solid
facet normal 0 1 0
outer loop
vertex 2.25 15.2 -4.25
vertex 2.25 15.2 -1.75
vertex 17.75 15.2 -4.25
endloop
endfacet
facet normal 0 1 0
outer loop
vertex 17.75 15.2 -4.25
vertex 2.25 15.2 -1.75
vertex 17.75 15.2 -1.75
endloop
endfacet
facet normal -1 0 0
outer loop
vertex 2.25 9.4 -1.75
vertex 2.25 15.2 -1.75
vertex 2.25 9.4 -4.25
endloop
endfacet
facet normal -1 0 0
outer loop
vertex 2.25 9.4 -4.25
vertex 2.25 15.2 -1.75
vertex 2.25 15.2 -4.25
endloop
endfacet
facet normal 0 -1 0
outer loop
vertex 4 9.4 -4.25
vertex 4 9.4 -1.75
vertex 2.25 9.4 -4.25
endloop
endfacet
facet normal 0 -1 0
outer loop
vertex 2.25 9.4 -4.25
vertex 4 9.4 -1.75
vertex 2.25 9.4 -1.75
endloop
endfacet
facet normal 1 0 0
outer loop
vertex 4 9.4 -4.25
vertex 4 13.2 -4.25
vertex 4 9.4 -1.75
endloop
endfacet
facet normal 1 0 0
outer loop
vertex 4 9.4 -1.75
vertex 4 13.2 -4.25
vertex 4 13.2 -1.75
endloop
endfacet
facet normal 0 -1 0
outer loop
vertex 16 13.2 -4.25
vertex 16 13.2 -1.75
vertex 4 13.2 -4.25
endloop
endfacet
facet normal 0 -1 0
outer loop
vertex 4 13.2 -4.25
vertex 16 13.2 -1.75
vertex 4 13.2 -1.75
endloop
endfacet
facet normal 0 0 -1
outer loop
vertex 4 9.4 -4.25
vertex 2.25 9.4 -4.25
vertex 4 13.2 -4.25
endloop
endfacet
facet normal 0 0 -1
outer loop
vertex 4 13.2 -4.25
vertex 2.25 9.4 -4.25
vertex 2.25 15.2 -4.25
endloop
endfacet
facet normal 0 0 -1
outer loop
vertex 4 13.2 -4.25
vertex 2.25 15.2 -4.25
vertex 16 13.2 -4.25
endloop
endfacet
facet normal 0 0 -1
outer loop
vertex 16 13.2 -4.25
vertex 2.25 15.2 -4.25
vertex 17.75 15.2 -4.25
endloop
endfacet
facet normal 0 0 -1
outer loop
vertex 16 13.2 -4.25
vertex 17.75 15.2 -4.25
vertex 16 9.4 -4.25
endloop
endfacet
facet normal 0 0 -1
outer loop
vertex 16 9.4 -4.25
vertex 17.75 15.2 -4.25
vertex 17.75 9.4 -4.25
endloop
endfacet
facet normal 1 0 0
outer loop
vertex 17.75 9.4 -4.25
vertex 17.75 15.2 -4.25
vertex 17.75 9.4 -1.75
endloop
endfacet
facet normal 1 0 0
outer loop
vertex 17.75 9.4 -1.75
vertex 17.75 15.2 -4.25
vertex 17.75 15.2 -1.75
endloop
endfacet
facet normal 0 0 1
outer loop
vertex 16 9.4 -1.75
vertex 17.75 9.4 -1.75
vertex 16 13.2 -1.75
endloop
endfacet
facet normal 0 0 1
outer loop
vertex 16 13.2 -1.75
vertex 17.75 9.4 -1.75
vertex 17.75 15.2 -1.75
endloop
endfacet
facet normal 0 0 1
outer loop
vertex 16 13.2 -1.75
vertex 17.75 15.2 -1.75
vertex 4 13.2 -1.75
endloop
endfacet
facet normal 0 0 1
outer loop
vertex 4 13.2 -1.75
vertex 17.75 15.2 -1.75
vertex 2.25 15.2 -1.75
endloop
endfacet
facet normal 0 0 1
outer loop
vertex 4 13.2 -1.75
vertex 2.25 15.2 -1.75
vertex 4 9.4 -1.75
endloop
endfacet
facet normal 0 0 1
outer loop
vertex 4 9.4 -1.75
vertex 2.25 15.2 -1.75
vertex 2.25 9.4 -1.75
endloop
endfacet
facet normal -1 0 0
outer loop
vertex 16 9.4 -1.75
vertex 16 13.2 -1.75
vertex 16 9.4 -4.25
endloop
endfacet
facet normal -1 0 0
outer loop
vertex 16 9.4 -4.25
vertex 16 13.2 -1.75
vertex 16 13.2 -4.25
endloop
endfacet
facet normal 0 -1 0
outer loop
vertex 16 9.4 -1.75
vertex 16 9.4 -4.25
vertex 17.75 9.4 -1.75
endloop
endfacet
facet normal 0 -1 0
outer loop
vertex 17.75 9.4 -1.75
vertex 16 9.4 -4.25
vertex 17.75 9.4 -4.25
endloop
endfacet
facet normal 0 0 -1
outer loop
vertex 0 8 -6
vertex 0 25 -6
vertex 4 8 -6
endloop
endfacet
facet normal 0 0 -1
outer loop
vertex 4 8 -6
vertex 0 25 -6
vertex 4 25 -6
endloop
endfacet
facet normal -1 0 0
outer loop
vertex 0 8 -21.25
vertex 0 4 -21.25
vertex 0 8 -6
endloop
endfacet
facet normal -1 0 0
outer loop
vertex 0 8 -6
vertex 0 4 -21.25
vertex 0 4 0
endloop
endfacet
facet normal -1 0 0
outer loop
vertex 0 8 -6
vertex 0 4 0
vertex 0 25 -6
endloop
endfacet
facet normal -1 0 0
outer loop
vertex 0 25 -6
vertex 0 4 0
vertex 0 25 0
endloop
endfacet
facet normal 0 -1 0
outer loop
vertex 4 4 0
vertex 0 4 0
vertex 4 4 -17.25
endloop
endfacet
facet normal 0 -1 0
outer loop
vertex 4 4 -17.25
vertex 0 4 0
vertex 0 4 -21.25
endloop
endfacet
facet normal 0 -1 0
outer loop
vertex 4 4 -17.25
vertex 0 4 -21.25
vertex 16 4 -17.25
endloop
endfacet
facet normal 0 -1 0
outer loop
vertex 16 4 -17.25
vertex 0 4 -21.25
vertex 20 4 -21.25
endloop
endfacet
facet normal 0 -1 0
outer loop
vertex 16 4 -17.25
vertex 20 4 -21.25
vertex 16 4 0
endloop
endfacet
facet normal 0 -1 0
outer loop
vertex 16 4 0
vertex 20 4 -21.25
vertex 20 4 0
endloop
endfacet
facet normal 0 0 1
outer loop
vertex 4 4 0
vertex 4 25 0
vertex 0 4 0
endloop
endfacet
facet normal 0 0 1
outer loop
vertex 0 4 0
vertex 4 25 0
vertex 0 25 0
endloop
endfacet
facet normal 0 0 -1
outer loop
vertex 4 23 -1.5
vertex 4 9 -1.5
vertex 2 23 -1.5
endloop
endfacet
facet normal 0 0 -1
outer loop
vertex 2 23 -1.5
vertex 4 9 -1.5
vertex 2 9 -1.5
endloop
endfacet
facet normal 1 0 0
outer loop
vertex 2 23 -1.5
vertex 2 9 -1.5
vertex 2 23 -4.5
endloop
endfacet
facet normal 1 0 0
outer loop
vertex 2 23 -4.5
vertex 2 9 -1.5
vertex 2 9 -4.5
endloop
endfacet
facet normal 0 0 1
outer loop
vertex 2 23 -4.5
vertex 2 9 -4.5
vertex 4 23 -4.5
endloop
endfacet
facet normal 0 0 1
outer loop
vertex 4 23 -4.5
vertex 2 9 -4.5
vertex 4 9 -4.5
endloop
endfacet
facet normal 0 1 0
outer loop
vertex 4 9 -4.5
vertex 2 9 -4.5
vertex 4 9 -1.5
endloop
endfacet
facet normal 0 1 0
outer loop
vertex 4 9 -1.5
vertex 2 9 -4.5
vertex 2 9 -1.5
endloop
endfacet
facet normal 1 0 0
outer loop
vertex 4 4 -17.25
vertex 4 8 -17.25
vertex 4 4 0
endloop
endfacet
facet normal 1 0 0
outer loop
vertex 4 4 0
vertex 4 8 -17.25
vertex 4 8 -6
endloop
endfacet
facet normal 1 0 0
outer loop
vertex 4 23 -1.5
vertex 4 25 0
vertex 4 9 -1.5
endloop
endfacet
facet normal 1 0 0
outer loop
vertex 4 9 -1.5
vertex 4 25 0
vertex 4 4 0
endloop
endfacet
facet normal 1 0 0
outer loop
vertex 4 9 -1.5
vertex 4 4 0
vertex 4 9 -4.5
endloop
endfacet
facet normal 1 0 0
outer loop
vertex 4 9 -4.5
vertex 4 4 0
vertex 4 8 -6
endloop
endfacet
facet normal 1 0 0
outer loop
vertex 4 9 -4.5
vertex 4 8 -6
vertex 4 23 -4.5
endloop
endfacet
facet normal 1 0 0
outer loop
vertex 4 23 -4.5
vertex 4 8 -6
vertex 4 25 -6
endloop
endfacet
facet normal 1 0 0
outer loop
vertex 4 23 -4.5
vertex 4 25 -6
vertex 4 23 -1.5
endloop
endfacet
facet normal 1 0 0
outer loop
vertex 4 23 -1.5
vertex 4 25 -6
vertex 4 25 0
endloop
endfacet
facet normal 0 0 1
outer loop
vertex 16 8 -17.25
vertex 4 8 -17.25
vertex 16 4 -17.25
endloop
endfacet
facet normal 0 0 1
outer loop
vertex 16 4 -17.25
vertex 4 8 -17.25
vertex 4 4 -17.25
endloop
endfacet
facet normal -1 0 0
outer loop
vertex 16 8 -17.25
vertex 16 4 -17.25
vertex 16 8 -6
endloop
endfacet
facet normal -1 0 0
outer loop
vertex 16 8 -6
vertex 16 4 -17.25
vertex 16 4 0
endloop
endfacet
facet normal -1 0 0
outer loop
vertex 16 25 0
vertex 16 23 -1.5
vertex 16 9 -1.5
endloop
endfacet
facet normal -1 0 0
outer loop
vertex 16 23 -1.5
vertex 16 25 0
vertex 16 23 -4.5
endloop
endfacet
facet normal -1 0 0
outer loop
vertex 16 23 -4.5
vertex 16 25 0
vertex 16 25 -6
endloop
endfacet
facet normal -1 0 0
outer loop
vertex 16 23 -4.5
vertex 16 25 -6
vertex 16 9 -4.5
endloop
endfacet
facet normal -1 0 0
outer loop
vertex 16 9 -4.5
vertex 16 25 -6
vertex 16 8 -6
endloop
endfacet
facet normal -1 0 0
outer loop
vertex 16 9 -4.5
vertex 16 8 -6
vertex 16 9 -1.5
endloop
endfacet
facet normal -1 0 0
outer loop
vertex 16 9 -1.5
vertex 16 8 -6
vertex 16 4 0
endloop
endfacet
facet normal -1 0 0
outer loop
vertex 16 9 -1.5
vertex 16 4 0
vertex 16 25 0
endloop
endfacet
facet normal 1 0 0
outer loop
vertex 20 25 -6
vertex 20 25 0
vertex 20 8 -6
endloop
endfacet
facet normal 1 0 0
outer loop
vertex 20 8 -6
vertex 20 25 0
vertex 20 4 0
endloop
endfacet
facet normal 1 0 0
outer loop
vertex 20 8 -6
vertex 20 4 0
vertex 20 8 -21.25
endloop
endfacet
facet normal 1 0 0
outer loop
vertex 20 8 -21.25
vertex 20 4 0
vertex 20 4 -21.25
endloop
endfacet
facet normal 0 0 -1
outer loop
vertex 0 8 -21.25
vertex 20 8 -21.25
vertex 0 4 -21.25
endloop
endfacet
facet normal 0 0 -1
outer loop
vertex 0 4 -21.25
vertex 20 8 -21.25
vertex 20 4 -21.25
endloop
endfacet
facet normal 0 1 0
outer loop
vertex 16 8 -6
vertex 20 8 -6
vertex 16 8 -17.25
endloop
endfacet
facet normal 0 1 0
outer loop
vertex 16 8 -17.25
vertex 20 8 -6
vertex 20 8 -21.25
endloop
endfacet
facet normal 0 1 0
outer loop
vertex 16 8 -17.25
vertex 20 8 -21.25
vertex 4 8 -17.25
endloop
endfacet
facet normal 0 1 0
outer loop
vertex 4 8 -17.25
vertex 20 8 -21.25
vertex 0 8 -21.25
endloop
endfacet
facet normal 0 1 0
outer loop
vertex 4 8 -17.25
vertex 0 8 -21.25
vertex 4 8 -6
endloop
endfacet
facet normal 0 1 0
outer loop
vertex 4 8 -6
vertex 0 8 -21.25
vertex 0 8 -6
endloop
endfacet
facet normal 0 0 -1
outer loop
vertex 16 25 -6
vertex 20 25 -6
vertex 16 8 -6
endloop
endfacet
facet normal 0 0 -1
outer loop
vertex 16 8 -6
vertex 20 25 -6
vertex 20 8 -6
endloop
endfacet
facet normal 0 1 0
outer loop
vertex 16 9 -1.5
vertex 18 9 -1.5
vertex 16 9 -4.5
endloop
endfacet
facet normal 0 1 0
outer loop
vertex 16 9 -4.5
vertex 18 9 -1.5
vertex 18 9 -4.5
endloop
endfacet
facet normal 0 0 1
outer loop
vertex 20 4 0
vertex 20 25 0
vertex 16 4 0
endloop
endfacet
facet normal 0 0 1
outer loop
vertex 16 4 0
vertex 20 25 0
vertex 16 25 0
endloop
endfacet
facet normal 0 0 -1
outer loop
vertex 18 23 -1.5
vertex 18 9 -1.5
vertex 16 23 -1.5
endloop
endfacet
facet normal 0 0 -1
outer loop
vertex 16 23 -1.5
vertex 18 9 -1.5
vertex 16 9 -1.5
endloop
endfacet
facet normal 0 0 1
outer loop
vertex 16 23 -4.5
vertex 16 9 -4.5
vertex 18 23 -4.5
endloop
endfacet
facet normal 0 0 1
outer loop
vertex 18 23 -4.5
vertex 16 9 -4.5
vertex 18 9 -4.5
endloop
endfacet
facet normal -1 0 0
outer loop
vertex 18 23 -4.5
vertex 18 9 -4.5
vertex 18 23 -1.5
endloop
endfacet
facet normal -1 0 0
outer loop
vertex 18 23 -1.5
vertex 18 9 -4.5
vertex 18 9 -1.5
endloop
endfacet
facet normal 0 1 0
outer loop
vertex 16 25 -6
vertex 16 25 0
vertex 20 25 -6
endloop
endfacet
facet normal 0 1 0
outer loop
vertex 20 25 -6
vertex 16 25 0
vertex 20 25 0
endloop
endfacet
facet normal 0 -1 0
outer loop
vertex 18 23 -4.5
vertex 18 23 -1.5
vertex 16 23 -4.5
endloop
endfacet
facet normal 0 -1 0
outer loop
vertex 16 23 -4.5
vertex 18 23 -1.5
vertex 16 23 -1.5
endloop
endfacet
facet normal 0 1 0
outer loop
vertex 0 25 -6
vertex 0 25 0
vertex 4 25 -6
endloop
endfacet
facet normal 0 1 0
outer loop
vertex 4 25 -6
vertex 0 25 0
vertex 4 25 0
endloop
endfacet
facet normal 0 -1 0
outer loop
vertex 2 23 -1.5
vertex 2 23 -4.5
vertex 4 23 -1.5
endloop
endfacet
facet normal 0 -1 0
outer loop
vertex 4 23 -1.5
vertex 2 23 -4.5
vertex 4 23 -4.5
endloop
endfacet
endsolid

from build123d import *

# Parameters (mm, degrees)
SKETCH1_W             = 4
SKETCH1_H             = 6
BOSS_EXTRUDE1_DEPTH   = 13
BOSS_EXTRUDE1_2_DEPTH = 13
SKETCH2_W             = 2
SKETCH2_H             = 3
CUT_EXTRUDE1_DEPTH    = 4
SKETCH4_W             = 1.75
SKETCH4_H             = 2.5
BOSS_EXTRUDE2_DEPTH   = 4.2
BOSS_EXTRUDE2_2_DEPTH = 4.2
SKETCH5_W             = 15.5
SKETCH5_H             = 2.5
BOSS_EXTRUDE3_DEPTH   = 2
BOSS_EXTRUDE4_DEPTH   = 10
SKETCH8_W             = 4
SKETCH8_H             = 6
CUT_EXTRUDE2_DEPTH    = 4
CUT_EXTRUDE3_REACH    = 30.653
SKETCH9_W             = 2.5
SKETCH9_H             = 0.4
SKETCH10_W            = 2.5
SKETCH10_H            = 0.4
CUT_EXTRUDE4_DEPTH    = 2
BOSS_EXTRUDE5_DEPTH   = 4
SKETCH14_W            = 4
SKETCH14_H            = 6
BOSS_EXTRUDE7_DEPTH   = 2


with BuildPart() as part:
    # Sketch1 → Boss-Extrude1 (new body)
    with BuildSketch(Plane(origin=(0, 0, 0), x_dir=(1, 0, 0), z_dir=(0, 1, 0))):
        with Locations((18, 3)):
            Rectangle(SKETCH1_W, SKETCH1_H)
    extrude(amount=BOSS_EXTRUDE1_DEPTH)


with BuildPart() as body_2:
    # Sketch1 → Boss-Extrude1 2 (new body)
    with BuildSketch(Plane(origin=(0, 0, 0), x_dir=(1, 0, 0), z_dir=(0, 1, 0))):
        with Locations((2, 3)):
            Rectangle(SKETCH1_W, SKETCH1_H)
    extrude(amount=BOSS_EXTRUDE1_2_DEPTH)


with BuildPart() as cut_extrude1_tool:
    # Sketch2 → Cut-Extrude1 (new body)
    with BuildSketch(Plane(origin=(0, 13, 0), x_dir=(1, 0, 0), z_dir=(0, 1, 0))):
        with Locations((17, 3)):
            Rectangle(SKETCH2_W, SKETCH2_H)
        with Locations((3, 3)):
            Rectangle(SKETCH2_W, SKETCH2_H)
    extrude(amount=-CUT_EXTRUDE1_DEPTH)


with BuildPart() as part_1:
    add(part.part)

    # Cut-Extrude1: cut by cut_extrude1_tool
    add(cut_extrude1_tool.part, mode=Mode.SUBTRACT)



with BuildPart() as body_2_1:
    add(body_2.part)

    # Cut-Extrude1: cut by cut_extrude1_tool
    add(cut_extrude1_tool.part, mode=Mode.SUBTRACT)


with BuildPart() as body_3:
    # Sketch4 → Boss-Extrude2 (new body)
    with BuildSketch(Plane(origin=(0, 9, 0), x_dir=(1, 0, 0), z_dir=(0, 1, 0))):
        with Locations((16.875, 3)):
            Rectangle(SKETCH4_W, SKETCH4_H)
    extrude(amount=BOSS_EXTRUDE2_DEPTH)



with BuildPart() as body_4:
    # Sketch4 → Boss-Extrude2 2 (new body)
    with BuildSketch(Plane(origin=(0, 9, 0), x_dir=(1, 0, 0), z_dir=(0, 1, 0))):
        with Locations((3.125, 3)):
            Rectangle(SKETCH4_W, SKETCH4_H)
    extrude(amount=BOSS_EXTRUDE2_2_DEPTH)


with BuildPart() as body_3_1:
    add(body_3.part)

    add(body_4.part)  # Boss-Extrude3 merges body 4
    # Sketch5 → Boss-Extrude3 (add)
    with BuildSketch(Plane(origin=(0, 13.2, 0), x_dir=(1, 0, 0), z_dir=(0, 1, 0))):
        with Locations((10, 3)):
            Rectangle(SKETCH5_W, SKETCH5_H)
    extrude(amount=BOSS_EXTRUDE3_DEPTH)


with BuildPart() as part_2:
    add(part_1.part)

    add(body_3_1.part)  # Boss-Extrude4 merges body 3

    add(body_2_1.part)  # Boss-Extrude4 merges body 2
    # Sketch7 → Boss-Extrude4 (add)
    with BuildSketch(Plane(origin=(0, 13, 0), x_dir=(1, 0, 0), z_dir=(0, 1, 0))):
        Polygon((16, 4.5), (16, 6), (20, 6), (20, 0), (16, 0), (16, 1.5), (18, 1.5), (18, 4.5), align=None)
        Polygon((4, 6), (0, 6), (0, 0), (4, 0), (4, 1.5), (2, 1.5), (2, 4.5), (4, 4.5), align=None)
    extrude(amount=BOSS_EXTRUDE4_DEPTH)

    # Sketch8 → Cut-Extrude2 (cut)
    with BuildSketch(Plane.XZ):
        with Locations((2, -3)):
            Rectangle(SKETCH8_W, SKETCH8_H)
        with Locations((18, -3)):
            Rectangle(SKETCH8_W, SKETCH8_H)
    extrude(amount=-CUT_EXTRUDE2_DEPTH, mode=Mode.SUBTRACT)

    # Sketch9 → Cut-Extrude3 (cut, up to next)
    with BuildSketch(Plane(origin=(4, 0, 0), x_dir=(0, 0, -1), z_dir=(1, 0, 0)), mode=Mode.PRIVATE) as cut_extrude3_sk1:
        with Locations((3, 9.2)):
            Rectangle(SKETCH9_W, SKETCH9_H)
    cut_extrude3_tool1 = extrude(cut_extrude3_sk1.sketch, amount=-CUT_EXTRUDE3_REACH, mode=Mode.PRIVATE) & part_2.part
    add(cut_extrude3_tool1.solids().sort_by_distance((4, 9.2, -3))[0], mode=Mode.SUBTRACT)


with BuildPart() as cut_extrude3_piece_1:
    # of the separate pieces the step leaves, piece 1, a body of its own (cut_extrude3_pieces)
    add(part_2.part.solids().sort_by_distance((4, 9.4, -4.25))[0])

    # Sketch10 → Cut-Extrude4 (cut)
    with BuildSketch(Plane.ZY.offset(-16)):
        with Locations((-3, 9.2)):
            Rectangle(SKETCH10_W, SKETCH10_H)
    extrude(amount=-CUT_EXTRUDE4_DEPTH, mode=Mode.SUBTRACT)


with BuildPart() as cut_extrude3_piece_2:
    # of the separate pieces the step leaves, piece 2, a body of its own (cut_extrude3_pieces)
    add(part_2.part.solids().sort_by_distance((0, 23, -6))[0])



with BuildPart() as cut_extrude4_piece_1:
    # of the separate pieces the step leaves, piece 1, a body of its own (cut_extrude4_pieces)
    add(cut_extrude3_piece_1.part.solids().sort_by_distance((16, 9, -4.5))[0])


with BuildPart() as cut_extrude4_piece_2:
    # of the separate pieces the step leaves, piece 2, a body of its own (cut_extrude4_pieces)
    add(cut_extrude3_piece_1.part.solids().sort_by_distance((4, 9.4, -4.25))[0])


with BuildPart() as cut_extrude3_piece_2_1:
    add(cut_extrude3_piece_2.part)

    add(cut_extrude4_piece_1.part)  # Boss-Extrude5 merges Cut-Extrude4 piece 1
    # Sketch12 → Boss-Extrude5 (add)
    with BuildSketch(Plane.XZ.offset(-4)):
        Polygon((20, -21.25), (20, -6), (16, -6), (16, -17.25), (4, -17.25), (4, -6), (0, -6), (0, -21.25), align=None)
    extrude(amount=-BOSS_EXTRUDE5_DEPTH)

    # Sketch14 → Boss-Extrude7 (add)
    with BuildSketch(Plane(origin=(0, 23, 0), x_dir=(1, 0, 0), z_dir=(0, 1, 0))):
        with Locations((18, 3)):
            Rectangle(SKETCH14_W, SKETCH14_H)
        with Locations((2, 3)):
            Rectangle(SKETCH14_W, SKETCH14_H)
    extrude(amount=BOSS_EXTRUDE7_DEPTH)


solid = Compound([cut_extrude4_piece_2.part, cut_extrude3_piece_2_1.part])
